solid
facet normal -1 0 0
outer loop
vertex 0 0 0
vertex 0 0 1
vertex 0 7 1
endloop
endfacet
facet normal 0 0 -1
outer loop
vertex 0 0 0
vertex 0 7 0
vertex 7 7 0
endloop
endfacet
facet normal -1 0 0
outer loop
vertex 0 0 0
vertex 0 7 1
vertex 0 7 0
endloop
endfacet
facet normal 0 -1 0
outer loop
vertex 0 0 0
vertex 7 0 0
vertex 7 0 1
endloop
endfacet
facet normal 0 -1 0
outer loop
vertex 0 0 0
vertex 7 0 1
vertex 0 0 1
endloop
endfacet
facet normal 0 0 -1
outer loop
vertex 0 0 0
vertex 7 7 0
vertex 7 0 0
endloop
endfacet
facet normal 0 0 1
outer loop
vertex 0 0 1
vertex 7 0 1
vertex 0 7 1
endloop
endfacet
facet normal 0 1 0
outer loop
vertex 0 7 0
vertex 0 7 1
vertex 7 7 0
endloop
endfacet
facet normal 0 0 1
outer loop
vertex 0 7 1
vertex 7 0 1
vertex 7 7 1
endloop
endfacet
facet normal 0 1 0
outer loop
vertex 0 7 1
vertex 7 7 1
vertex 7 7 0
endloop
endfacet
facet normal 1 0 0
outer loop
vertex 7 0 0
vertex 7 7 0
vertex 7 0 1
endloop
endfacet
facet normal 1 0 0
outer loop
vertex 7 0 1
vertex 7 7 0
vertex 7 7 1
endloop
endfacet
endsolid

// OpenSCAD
/* Warning, this is a very basic generator with a lot of approximation 
input data : [VQFN, PYA, 7x7x1.0mm, 84, , A, C04-01271A]
generated by com.zoubworld.electronics.cad.model3d.Basic
Date : Sun Feb 15 10:50:49 CET 2026
*/

//body
color("black")
translate([0,0,0])
cube([7.0,7.0,1.0], center=false);
